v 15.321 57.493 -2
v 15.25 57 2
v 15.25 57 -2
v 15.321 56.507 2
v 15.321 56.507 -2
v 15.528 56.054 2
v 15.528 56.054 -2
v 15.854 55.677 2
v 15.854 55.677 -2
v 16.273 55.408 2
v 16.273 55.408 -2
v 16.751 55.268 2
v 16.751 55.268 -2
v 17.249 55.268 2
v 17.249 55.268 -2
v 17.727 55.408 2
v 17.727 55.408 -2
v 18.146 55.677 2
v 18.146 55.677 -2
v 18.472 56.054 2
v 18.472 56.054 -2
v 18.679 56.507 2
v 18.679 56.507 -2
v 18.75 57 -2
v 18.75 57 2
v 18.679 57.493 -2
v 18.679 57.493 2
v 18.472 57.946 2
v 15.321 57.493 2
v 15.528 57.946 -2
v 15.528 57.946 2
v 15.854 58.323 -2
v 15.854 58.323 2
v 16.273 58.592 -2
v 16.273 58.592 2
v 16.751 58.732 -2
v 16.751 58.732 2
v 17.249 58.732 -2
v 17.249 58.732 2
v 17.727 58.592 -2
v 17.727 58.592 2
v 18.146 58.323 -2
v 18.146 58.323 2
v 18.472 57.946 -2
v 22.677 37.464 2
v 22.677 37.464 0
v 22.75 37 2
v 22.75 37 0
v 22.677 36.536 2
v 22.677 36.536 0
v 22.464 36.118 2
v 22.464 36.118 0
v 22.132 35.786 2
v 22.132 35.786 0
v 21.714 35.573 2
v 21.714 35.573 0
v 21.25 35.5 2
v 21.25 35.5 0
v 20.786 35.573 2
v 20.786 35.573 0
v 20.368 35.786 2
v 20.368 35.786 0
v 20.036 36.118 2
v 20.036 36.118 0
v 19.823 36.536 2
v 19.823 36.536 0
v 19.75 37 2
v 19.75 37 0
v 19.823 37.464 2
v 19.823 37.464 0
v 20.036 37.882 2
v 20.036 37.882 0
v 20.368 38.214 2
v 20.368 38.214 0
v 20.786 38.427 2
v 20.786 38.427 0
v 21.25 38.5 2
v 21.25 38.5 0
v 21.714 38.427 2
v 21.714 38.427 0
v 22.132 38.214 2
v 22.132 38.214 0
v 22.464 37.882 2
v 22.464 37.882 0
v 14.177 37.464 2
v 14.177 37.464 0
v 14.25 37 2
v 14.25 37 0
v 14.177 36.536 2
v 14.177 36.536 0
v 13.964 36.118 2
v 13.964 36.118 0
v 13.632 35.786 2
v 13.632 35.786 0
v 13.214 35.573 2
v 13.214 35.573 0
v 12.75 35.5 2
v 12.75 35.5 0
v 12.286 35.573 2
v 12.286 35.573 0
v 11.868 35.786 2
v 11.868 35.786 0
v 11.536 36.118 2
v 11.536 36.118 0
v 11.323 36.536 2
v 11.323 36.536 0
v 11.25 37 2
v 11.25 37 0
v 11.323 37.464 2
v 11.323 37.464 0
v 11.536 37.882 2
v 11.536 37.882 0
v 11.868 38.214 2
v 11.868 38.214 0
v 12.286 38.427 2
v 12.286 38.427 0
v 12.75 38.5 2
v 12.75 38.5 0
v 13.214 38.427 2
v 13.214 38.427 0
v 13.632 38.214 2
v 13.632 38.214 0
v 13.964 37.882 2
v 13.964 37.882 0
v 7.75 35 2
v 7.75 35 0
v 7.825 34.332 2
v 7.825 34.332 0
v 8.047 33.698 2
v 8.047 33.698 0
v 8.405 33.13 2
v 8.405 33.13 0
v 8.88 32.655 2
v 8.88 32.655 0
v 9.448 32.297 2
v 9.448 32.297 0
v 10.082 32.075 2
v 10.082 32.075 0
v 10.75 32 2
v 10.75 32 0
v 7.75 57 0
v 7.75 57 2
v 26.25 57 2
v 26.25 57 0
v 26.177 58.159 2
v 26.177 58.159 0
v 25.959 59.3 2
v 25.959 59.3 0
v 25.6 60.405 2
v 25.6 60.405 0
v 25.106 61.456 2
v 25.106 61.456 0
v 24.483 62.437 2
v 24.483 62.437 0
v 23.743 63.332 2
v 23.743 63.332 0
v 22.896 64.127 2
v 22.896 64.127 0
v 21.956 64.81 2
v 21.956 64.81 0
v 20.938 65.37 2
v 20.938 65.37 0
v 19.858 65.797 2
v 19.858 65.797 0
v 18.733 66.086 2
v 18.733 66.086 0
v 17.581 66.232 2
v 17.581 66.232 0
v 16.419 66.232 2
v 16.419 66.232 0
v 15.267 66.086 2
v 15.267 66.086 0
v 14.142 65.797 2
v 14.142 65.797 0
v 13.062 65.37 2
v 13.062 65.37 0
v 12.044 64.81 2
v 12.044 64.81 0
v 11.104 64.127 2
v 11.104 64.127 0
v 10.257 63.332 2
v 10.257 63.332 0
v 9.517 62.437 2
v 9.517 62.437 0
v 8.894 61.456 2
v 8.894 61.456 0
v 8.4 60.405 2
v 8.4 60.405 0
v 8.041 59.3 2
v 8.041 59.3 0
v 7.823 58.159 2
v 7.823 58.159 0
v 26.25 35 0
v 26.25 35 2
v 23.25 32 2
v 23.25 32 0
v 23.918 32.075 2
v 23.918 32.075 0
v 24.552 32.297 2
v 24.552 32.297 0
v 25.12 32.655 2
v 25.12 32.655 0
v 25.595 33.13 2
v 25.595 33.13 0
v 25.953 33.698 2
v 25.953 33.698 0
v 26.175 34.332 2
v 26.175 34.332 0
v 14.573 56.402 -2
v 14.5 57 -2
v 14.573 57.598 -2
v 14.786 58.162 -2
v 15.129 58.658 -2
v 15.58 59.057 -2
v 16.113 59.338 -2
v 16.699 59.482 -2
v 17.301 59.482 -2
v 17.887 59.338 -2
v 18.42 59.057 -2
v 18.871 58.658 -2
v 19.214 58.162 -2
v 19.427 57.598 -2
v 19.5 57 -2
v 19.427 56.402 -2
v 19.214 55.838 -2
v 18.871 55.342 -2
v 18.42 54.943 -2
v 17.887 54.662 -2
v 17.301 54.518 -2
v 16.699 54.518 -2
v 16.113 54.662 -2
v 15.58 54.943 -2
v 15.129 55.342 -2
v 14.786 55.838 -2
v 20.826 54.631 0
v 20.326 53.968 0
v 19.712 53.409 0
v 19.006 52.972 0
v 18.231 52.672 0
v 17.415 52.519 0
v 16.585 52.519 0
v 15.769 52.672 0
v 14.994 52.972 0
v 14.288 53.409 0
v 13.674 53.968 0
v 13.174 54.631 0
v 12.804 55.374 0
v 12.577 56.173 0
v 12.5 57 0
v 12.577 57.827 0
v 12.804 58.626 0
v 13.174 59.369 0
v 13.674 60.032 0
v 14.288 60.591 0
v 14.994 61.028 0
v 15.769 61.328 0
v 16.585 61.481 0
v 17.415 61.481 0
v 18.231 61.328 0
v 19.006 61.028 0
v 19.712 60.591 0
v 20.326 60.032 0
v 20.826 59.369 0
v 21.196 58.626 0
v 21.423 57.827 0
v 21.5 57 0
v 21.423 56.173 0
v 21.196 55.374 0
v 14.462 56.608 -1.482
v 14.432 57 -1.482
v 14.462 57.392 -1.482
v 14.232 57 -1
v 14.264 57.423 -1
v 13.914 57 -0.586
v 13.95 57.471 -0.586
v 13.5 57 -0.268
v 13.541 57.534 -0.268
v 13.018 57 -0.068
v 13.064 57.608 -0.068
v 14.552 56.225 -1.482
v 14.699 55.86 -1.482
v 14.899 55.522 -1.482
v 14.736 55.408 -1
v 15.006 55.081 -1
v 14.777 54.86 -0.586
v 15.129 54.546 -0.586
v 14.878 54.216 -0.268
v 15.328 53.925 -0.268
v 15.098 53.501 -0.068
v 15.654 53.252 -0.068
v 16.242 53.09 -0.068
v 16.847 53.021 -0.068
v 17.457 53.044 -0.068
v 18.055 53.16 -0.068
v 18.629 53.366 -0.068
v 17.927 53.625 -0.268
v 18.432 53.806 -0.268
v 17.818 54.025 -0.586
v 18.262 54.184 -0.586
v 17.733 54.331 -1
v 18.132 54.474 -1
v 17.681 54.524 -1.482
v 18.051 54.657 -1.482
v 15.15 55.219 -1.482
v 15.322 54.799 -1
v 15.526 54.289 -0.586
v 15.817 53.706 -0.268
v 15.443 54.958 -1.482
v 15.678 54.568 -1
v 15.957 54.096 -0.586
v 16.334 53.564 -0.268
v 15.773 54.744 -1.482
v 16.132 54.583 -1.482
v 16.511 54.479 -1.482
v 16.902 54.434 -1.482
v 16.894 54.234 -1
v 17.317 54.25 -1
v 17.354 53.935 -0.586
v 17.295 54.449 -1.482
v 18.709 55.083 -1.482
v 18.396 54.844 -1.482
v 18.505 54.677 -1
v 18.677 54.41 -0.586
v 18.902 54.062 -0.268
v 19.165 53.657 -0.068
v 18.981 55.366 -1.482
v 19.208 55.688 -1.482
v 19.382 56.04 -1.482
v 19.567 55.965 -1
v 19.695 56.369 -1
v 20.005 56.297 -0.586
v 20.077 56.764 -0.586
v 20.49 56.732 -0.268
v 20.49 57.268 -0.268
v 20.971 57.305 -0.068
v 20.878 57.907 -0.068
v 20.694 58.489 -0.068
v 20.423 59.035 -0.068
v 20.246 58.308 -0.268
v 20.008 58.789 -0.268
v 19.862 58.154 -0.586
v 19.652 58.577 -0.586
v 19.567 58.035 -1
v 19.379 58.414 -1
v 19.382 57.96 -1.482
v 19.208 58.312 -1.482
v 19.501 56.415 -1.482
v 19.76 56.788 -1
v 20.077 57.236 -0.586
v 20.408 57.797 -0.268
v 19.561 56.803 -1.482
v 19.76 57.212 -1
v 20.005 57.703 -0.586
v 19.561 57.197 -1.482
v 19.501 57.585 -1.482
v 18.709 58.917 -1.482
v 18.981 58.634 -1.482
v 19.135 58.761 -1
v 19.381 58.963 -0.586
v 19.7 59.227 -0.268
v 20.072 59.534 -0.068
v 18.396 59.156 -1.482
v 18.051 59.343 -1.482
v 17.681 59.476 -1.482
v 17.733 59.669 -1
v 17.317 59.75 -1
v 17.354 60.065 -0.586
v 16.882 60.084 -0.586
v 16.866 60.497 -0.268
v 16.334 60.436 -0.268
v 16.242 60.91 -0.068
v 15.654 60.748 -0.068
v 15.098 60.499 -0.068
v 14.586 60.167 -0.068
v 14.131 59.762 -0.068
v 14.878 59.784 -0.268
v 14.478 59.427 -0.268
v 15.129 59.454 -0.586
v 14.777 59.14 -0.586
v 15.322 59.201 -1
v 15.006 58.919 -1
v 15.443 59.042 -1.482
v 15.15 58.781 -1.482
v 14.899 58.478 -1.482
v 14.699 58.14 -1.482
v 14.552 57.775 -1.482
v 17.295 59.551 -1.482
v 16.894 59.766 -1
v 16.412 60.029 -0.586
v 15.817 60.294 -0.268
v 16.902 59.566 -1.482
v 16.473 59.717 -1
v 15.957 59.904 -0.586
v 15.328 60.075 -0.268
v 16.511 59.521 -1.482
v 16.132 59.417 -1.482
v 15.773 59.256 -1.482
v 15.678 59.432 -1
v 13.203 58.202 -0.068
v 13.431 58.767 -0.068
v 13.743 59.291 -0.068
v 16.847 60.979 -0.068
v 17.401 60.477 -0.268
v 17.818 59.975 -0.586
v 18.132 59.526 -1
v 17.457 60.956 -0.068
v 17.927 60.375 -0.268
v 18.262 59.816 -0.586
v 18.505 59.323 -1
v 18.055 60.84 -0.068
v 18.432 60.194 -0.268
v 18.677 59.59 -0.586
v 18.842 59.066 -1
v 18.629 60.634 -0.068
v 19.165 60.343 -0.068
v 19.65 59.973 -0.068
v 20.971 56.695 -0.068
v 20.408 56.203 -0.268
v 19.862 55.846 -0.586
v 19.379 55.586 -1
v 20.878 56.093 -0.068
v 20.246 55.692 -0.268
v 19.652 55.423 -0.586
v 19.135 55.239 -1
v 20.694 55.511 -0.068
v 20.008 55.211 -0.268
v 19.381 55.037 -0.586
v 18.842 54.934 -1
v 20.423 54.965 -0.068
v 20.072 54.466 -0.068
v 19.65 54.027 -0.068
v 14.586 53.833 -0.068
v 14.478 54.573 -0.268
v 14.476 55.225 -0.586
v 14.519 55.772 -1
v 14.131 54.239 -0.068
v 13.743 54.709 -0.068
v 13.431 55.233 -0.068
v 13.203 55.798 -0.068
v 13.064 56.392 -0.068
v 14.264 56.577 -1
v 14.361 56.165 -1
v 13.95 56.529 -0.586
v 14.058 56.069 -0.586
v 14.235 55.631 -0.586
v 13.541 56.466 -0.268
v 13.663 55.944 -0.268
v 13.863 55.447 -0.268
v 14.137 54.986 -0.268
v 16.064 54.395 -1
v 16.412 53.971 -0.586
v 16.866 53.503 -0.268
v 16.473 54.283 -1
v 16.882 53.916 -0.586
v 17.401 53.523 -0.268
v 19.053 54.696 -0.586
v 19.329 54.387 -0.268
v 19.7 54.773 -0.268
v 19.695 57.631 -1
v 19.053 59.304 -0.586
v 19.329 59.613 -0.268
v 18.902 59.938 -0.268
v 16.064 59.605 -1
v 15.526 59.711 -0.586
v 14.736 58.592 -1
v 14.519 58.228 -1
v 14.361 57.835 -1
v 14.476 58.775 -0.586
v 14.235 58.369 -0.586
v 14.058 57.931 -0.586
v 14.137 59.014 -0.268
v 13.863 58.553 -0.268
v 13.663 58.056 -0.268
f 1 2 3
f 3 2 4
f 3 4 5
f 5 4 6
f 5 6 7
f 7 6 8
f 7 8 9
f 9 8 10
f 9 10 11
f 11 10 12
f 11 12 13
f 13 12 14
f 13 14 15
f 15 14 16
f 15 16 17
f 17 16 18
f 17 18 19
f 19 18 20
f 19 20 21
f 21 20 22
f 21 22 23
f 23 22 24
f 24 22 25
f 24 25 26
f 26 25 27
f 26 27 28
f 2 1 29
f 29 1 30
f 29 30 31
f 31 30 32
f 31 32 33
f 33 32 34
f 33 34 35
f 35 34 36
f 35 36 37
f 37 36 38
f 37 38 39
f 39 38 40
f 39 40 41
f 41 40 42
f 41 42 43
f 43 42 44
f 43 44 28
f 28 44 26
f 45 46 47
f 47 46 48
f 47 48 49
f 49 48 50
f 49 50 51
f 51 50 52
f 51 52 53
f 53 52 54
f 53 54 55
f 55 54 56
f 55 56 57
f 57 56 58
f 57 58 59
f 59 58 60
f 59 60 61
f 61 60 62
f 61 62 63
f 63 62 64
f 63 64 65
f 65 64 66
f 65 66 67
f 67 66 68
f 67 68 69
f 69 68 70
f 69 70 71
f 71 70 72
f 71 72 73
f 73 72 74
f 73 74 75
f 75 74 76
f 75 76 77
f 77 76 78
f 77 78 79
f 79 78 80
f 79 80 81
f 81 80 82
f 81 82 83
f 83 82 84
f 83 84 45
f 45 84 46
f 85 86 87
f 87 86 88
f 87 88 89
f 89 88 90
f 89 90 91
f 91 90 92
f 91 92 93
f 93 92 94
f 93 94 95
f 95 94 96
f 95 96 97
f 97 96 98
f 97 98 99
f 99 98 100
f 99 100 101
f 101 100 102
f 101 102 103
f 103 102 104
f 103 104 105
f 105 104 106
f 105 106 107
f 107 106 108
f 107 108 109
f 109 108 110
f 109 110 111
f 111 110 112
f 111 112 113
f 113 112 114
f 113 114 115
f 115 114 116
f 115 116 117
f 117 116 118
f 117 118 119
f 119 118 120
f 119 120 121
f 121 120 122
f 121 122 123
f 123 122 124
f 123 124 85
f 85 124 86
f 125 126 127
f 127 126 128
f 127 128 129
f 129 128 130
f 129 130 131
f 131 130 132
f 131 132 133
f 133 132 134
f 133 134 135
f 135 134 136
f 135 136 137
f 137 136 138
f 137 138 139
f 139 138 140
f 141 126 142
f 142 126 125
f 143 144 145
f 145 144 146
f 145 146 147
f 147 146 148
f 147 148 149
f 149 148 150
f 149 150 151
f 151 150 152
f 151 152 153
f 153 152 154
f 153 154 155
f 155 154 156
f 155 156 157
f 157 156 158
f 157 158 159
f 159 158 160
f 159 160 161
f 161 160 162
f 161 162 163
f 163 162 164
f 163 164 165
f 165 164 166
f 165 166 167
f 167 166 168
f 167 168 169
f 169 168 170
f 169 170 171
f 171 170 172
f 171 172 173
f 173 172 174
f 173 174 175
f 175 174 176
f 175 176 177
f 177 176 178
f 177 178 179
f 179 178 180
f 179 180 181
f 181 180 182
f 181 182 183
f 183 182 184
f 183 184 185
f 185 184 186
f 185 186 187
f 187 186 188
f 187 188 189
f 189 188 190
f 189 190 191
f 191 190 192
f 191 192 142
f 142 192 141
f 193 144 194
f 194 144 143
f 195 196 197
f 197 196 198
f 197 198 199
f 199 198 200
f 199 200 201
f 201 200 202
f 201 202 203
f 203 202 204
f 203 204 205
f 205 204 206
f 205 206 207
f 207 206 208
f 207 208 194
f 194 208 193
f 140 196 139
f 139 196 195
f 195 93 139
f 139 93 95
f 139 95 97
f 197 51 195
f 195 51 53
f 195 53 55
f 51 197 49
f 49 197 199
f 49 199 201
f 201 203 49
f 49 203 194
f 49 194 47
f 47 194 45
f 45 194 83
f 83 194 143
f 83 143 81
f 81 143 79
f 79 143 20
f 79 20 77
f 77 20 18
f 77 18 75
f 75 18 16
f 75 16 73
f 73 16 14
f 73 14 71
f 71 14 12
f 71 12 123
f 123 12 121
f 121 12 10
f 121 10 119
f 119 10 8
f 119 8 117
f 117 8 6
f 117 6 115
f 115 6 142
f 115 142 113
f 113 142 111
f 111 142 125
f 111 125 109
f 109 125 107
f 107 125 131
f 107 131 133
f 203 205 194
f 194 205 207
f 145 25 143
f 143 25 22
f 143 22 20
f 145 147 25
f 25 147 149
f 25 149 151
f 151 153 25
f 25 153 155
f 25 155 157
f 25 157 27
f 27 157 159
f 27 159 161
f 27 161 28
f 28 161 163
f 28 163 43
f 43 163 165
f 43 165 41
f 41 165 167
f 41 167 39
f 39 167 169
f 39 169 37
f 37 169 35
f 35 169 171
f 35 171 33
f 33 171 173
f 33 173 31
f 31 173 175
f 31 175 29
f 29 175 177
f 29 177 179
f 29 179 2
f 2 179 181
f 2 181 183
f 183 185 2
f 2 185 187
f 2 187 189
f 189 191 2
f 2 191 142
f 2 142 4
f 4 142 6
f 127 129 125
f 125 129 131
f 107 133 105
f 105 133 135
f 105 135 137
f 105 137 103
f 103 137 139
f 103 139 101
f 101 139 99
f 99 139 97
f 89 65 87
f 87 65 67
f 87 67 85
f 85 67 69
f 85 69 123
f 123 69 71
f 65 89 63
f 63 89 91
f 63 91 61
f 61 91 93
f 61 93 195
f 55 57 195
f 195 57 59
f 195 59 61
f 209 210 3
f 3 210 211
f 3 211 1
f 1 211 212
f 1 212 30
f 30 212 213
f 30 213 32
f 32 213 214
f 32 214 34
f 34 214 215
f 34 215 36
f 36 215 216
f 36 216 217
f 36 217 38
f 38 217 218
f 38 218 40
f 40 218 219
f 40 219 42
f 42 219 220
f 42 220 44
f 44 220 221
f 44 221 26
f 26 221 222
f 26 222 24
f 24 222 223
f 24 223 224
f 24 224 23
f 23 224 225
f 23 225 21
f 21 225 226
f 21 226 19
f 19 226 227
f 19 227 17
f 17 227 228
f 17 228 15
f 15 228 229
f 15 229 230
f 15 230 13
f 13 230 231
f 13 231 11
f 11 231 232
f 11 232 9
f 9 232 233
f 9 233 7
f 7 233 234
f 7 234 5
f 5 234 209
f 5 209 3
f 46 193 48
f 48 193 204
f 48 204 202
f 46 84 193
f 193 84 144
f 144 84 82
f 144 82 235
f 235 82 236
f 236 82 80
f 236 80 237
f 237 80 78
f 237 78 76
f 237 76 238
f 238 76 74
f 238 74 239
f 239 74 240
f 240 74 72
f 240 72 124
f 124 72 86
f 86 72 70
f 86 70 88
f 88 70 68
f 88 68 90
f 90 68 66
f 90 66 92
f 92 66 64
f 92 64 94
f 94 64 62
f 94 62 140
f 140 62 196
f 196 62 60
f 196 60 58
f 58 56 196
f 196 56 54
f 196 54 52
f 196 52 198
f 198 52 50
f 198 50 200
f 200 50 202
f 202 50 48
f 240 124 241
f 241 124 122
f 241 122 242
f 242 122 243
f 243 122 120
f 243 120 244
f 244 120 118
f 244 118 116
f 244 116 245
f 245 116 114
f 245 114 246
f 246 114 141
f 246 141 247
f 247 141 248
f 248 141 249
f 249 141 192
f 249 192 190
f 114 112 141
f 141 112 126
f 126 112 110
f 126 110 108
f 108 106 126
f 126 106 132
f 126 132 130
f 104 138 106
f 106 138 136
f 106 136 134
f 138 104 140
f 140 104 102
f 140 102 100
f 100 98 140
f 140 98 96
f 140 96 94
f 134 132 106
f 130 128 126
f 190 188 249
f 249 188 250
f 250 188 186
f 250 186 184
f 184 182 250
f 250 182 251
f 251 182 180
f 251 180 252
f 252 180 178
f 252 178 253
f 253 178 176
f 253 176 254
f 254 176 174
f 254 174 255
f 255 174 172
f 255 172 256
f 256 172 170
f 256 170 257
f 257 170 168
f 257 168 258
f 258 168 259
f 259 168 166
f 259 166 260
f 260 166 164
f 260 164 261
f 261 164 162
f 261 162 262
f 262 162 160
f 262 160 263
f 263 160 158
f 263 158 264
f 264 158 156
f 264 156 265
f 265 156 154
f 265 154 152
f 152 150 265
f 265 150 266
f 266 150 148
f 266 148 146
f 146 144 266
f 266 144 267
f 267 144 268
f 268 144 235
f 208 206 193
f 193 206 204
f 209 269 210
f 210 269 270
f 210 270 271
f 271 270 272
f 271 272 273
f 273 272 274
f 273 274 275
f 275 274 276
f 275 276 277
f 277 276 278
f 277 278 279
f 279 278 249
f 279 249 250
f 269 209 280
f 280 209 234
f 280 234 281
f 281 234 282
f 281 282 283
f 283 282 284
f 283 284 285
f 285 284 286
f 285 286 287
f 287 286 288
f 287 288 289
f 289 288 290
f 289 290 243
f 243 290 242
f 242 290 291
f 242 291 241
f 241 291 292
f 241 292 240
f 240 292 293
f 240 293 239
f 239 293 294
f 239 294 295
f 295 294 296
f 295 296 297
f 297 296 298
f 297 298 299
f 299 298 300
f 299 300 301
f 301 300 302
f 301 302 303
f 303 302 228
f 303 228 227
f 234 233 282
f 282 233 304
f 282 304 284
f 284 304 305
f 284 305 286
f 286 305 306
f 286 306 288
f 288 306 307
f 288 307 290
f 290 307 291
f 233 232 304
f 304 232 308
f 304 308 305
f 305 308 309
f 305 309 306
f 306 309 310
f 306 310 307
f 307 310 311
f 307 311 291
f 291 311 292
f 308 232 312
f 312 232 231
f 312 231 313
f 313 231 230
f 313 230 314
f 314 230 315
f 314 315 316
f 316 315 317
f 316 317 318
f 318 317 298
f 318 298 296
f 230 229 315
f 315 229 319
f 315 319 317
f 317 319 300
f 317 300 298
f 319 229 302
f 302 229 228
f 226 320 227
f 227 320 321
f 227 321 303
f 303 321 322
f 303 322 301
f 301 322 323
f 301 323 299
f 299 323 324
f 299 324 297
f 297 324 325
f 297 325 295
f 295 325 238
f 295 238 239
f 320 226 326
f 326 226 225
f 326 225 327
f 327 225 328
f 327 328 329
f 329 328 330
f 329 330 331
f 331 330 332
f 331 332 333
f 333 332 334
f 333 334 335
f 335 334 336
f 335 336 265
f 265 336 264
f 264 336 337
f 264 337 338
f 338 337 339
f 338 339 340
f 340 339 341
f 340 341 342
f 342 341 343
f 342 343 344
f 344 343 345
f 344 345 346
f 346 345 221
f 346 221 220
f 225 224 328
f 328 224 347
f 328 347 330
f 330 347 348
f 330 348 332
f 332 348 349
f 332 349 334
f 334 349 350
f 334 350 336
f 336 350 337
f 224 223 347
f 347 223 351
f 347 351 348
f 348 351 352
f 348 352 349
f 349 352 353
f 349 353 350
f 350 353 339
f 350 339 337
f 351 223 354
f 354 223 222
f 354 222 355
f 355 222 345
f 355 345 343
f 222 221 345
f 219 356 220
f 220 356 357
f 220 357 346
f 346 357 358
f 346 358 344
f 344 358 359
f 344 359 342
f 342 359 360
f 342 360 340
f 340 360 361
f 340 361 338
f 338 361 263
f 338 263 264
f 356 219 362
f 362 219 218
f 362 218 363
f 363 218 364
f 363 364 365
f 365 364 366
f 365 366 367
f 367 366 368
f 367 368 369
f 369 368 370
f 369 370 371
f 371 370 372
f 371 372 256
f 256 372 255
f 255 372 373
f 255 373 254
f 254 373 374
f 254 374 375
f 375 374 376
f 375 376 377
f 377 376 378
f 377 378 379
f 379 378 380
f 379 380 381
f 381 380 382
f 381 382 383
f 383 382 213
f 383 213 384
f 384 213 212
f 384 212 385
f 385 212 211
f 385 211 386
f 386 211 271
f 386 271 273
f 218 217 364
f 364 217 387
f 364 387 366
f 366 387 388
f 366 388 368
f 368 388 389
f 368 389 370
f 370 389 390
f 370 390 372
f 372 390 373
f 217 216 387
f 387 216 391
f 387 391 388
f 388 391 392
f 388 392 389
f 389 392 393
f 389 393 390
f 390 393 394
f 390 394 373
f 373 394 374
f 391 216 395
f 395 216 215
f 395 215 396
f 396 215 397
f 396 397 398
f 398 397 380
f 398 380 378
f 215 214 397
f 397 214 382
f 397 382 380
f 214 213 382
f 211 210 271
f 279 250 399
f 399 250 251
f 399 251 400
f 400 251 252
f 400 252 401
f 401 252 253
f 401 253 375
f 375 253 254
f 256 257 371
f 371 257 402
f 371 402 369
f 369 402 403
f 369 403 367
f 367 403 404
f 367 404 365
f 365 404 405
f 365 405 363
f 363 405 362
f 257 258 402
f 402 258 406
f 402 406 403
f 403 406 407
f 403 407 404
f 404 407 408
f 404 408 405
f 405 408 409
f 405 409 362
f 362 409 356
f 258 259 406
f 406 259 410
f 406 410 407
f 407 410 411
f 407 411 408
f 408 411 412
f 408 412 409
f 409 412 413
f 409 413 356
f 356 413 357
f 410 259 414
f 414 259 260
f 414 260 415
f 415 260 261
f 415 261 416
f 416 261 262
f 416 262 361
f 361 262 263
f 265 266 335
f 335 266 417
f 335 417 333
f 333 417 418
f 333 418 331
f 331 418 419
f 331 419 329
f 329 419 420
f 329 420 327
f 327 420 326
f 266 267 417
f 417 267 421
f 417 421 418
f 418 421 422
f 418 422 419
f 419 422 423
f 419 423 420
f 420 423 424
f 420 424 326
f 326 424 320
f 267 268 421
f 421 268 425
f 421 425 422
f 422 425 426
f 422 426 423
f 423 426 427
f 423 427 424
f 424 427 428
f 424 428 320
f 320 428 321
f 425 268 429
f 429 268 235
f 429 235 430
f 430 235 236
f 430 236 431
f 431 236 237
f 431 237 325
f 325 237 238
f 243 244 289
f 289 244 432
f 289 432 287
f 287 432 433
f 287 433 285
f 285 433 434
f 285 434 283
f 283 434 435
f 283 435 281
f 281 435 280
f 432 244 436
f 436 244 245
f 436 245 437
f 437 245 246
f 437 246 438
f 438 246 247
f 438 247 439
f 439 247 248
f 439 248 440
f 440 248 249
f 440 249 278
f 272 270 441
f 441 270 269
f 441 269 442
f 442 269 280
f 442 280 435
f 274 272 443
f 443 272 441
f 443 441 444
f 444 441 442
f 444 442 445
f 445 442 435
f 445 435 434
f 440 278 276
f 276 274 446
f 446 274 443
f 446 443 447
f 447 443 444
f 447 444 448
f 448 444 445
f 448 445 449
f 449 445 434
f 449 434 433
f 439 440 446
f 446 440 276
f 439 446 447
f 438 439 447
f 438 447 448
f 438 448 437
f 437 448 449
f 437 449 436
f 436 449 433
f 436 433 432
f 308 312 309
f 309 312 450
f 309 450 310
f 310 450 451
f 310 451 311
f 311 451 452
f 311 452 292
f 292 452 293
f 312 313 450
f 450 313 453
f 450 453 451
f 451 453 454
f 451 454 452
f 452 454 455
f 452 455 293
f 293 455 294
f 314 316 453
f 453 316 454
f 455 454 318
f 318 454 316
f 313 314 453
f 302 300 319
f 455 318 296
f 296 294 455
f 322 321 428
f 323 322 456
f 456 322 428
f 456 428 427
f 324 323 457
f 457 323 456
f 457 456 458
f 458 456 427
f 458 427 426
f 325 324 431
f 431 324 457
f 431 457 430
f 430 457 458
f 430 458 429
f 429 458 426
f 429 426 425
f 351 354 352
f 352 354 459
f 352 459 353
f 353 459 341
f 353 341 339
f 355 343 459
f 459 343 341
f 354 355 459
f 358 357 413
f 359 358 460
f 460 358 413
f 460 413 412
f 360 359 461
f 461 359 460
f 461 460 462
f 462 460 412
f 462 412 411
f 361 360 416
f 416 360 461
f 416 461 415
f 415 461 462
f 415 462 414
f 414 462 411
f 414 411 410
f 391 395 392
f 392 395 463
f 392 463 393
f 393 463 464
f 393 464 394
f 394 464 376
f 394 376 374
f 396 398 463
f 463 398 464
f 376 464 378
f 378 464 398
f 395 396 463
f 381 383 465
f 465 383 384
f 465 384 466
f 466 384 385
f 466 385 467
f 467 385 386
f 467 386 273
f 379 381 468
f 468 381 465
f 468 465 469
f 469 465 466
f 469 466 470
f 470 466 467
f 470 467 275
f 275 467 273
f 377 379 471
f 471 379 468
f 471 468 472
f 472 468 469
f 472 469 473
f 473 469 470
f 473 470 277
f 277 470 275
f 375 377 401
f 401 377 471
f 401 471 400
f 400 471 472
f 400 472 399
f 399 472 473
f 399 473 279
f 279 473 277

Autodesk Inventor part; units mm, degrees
ref_plane "YZ Plane" through (0, 0, 0) normal (1, 0, 0) x (0, 1, 0)
ref_plane "XZ Plane" through (0, 0, 0) normal (0, 1, 0) x (-1, 0, 0)
ref_plane "XY Plane" through (0, 0, 0) normal (0, 0, 1) x (1, 0, 0)
ref_plane "Plano de trabajo1" through (0, 0, 0) normal (0, 0, 1) x (1, 0, 0)
sketch "Boceto1" plane through (0, 0, 0) normal (0, 0, 1) x (1, 0, 0)
  arc A0 (23.25, 32) -> (26.25, 35) centre (23.25, 35) ccw projected
  line L0 (23.25, 32) -> (10.75, 32) projected
  arc A1 (7.75, 35) -> (10.75, 32) centre (10.75, 35) ccw projected
  line L1 (7.75, 35) -> (7.75, 57) projected
  arc A2 (26.25, 57) -> (7.75, 57) centre (17, 57) ccw projected
  line L2 (26.25, 57) -> (26.25, 35) projected
  circle A3 centre (12.75, 37) radius 2.5 projected
  circle A4 centre (21.25, 37) radius 2.5 projected
  circle A5 centre (17, 57) radius 8.5 projected
  arc A6 (15.882, 58) -> (18.118, 58) centre (17, 57) ccw projected
  circle A7 centre (17, 57) radius 1.75
  circle A8 centre (12.75, 37) radius 1.5
  circle A9 centre (21.25, 37) radius 1.5
  point P0 (0, 0)
  dimension "d0" = 3.5
  dimension "d1" = 3
  dimension "d2" = 3
extrude "Extrusión1" add sketch "Boceto1" along normal blind 2 contours L0 A1 L1 A2 L2 A0 | A3 | A4 | A5
sketch "Boceto2" plane through (0, 0, 0) normal (0, 0, -1) x (-1, 0, 0)
  circle A0 centre (-17, 57) radius 1.75 projected
  circle A1 centre (-17, 57) radius 2.5
  point P0 (0, 0)
  dimension "d5" = 5
extrude "Extrusión2" add sketch "Boceto2" along normal blind 2
fillet "Empalme1" radius 2 1 edges at (19.5, 57, 0)
properties part number "Soporte Motor2"
